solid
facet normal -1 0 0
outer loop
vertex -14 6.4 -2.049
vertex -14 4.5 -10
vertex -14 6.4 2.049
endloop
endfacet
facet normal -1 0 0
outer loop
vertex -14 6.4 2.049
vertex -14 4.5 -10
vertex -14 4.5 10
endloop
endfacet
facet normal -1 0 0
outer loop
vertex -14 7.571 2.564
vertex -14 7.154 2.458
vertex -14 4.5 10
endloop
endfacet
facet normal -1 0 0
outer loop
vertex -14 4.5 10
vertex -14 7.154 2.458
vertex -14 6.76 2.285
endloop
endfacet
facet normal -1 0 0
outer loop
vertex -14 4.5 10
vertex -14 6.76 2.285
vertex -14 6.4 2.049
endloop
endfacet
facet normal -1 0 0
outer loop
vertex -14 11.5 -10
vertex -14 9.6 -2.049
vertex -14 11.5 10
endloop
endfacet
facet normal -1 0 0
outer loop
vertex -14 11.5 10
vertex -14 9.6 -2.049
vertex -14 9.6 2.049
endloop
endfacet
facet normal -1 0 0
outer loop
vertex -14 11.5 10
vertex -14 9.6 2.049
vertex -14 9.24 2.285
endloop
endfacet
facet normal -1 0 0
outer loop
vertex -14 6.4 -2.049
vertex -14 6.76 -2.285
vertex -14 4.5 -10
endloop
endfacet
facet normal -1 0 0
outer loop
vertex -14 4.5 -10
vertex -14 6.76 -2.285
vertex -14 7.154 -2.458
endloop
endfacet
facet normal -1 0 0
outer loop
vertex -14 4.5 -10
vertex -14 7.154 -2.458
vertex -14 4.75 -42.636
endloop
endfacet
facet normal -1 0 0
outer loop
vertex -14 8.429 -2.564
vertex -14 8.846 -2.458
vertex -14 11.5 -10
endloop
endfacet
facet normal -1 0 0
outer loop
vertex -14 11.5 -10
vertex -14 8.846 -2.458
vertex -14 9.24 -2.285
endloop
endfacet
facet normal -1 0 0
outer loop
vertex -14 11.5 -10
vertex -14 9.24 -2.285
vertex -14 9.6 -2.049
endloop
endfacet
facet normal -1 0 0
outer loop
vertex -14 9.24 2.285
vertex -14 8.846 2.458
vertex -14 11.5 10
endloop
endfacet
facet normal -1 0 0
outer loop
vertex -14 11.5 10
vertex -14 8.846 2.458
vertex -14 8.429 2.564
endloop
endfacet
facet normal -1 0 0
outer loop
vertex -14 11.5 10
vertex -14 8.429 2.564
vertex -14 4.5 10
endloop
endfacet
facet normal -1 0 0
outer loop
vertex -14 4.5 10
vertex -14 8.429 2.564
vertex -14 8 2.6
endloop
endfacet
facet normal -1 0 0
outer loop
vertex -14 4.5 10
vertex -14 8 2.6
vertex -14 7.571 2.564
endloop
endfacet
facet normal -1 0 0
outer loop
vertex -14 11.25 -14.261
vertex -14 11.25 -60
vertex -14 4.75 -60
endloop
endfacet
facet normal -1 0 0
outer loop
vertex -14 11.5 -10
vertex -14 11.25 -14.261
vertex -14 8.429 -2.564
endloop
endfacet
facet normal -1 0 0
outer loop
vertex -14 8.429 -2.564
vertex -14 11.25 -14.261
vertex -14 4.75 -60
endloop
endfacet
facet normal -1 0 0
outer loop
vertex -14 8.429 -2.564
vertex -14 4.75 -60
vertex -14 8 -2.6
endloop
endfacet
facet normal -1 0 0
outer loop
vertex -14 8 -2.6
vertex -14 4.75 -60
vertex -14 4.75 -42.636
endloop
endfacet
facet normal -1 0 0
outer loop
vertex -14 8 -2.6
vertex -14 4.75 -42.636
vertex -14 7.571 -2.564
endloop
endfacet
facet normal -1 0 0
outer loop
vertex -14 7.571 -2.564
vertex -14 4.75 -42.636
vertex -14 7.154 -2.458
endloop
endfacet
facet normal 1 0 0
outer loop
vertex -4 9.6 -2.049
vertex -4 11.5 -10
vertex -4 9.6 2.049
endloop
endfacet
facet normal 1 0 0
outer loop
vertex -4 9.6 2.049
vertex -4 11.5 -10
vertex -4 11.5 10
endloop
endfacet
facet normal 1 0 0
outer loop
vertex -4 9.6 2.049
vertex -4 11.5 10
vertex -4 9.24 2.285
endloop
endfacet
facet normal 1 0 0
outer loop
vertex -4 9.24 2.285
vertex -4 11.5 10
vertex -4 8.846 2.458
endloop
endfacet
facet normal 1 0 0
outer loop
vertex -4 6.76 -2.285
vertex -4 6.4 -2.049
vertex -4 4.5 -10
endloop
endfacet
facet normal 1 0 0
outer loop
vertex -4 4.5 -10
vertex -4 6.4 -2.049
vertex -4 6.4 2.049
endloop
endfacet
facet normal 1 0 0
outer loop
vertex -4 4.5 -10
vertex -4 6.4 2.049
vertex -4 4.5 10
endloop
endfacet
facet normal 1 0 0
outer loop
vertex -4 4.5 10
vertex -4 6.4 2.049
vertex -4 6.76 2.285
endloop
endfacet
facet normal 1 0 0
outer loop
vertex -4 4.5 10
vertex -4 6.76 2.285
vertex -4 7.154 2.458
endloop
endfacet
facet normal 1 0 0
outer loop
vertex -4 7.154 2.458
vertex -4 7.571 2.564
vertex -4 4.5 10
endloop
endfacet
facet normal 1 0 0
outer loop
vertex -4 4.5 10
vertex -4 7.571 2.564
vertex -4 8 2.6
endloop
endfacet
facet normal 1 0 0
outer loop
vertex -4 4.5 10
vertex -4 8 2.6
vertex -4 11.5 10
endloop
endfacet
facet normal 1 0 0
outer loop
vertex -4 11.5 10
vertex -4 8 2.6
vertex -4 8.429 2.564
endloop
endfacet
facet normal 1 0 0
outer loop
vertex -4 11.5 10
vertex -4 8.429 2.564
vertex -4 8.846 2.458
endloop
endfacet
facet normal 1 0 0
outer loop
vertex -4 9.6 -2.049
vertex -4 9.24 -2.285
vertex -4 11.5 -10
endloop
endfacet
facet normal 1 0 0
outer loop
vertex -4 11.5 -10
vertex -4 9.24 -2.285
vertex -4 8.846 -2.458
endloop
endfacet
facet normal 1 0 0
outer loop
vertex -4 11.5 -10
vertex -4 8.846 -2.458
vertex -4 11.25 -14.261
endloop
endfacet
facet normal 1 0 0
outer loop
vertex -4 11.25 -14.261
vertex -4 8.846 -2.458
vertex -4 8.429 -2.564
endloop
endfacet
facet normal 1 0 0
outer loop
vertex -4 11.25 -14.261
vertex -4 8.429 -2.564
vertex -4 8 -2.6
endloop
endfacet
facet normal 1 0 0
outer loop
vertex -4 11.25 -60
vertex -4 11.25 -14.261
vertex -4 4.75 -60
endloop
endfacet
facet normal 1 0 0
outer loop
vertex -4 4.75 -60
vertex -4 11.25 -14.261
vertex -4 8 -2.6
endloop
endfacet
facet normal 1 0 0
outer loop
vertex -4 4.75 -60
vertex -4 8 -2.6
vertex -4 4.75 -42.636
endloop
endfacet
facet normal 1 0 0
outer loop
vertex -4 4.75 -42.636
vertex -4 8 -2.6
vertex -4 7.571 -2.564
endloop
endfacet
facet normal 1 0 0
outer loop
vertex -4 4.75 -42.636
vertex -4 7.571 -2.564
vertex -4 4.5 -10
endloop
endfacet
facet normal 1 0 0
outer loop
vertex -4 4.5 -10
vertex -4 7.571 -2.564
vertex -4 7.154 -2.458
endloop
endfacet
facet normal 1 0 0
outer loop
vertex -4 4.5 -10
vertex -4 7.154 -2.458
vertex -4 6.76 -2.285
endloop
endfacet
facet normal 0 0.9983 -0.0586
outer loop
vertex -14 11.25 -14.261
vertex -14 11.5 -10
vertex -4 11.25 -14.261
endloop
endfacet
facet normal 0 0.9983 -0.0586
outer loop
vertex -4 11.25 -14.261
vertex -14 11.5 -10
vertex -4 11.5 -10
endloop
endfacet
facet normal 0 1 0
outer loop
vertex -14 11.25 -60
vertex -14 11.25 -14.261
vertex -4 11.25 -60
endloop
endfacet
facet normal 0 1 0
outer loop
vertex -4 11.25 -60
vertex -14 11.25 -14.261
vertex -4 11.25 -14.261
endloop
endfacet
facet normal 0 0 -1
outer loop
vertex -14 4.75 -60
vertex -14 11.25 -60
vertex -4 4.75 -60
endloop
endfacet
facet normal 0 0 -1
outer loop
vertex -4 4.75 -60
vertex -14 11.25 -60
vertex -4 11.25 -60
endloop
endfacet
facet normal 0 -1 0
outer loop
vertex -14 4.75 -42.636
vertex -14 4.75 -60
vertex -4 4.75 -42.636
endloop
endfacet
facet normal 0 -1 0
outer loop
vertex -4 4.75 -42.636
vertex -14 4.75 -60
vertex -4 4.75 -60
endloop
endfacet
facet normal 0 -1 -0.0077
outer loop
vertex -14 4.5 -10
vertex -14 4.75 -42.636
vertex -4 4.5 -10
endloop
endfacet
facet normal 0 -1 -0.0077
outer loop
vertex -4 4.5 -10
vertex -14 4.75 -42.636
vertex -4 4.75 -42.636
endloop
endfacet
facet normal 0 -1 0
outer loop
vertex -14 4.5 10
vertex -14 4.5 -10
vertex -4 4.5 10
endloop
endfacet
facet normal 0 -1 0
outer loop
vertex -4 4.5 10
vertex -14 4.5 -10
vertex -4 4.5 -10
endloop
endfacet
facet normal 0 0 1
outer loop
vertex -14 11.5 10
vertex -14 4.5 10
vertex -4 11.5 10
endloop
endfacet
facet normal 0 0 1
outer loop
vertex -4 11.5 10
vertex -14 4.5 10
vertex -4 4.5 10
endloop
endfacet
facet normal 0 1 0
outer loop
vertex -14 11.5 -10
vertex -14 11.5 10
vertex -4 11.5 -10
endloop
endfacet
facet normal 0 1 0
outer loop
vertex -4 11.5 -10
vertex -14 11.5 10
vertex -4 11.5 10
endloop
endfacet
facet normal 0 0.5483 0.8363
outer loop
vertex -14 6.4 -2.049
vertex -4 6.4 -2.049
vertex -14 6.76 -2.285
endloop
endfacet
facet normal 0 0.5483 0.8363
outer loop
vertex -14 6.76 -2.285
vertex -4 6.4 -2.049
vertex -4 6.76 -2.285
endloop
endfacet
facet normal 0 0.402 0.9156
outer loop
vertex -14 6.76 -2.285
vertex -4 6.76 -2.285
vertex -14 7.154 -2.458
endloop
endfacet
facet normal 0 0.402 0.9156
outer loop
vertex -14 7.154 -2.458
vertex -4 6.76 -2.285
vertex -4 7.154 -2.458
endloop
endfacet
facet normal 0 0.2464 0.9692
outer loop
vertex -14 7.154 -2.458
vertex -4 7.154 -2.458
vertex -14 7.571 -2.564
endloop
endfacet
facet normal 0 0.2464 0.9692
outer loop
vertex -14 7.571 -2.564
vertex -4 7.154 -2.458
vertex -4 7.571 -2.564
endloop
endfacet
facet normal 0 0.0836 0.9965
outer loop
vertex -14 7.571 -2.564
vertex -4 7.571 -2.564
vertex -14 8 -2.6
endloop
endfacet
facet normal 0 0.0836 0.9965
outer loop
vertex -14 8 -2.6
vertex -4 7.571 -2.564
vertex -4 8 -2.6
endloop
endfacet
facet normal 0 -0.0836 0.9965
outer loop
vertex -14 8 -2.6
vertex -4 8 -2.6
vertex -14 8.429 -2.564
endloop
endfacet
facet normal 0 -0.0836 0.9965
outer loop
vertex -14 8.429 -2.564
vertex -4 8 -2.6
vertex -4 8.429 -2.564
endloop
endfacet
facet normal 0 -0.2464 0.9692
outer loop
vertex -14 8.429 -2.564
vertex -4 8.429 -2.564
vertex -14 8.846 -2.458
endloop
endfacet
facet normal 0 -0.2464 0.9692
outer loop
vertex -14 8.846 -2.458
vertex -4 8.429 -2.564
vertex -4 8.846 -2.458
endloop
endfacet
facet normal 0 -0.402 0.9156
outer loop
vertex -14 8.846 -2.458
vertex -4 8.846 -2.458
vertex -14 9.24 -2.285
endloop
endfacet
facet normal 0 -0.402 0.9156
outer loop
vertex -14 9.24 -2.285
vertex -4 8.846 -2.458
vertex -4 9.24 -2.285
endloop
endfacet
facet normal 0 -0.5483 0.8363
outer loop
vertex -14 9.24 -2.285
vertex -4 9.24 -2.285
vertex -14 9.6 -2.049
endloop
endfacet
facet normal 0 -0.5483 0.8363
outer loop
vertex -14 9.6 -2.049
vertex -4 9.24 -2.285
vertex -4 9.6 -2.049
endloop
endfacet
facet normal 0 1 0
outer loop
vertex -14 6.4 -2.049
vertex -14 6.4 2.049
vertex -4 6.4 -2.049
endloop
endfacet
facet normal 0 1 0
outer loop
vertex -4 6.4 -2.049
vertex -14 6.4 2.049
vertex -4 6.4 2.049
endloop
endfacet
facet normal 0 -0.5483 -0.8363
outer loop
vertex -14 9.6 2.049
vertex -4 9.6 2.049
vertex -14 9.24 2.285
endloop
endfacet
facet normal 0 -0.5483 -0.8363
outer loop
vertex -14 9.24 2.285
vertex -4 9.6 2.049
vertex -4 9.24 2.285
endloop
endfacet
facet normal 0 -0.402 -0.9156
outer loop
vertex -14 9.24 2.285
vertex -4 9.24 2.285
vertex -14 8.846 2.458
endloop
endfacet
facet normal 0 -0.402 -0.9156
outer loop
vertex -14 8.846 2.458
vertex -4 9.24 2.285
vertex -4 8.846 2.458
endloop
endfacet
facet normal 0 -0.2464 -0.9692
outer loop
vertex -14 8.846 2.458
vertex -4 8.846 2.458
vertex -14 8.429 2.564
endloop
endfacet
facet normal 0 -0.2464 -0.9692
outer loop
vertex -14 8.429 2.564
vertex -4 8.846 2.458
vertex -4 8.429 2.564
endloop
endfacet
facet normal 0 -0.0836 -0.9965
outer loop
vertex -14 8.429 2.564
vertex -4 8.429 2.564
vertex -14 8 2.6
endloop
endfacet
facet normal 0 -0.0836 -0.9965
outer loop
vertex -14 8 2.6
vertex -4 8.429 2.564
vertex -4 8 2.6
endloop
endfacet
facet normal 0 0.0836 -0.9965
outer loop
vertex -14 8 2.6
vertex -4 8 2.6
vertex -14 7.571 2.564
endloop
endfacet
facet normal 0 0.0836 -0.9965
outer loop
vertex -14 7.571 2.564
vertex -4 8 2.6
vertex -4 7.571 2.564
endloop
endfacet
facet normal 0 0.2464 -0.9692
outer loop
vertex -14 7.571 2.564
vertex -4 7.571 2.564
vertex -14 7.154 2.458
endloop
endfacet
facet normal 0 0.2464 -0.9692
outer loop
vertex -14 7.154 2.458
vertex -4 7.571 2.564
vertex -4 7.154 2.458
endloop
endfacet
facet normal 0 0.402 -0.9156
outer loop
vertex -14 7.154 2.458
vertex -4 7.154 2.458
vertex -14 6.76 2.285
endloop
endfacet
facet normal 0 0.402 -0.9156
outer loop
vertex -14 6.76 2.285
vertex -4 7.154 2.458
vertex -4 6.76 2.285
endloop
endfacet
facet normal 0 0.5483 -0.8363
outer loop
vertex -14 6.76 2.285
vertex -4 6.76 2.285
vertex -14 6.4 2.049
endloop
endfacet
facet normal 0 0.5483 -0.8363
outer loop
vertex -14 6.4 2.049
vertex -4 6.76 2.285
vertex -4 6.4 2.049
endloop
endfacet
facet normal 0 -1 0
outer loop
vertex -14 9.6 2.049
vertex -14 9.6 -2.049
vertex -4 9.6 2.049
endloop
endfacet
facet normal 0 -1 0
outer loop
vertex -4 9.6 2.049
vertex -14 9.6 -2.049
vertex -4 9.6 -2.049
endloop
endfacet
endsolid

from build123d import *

# Parameters (mm, degrees)
BOSS_EXTRUDE1_DEPTH = 10


with BuildPart() as part:
    # Sketch1 → Boss-Extrude1 (new body)
    with BuildSketch(Plane.ZY.offset(4)):
        Polygon((-10, 11.5), (10, 11.5), (10, 4.5), (-10, 4.5), (-42.635866967, 4.75), (-60, 4.75), (-60, 11.25), (-14.260924963, 11.25), align=None)
        with BuildLine():
            Line((-2.049390153, 9.6), (2.049390153, 9.6))
            ThreePointArc((2.049390153, 9.6), (2.6, 8), (2.049390153, 6.4))
            Line((2.049390153, 6.4), (-2.049390153, 6.4))
            ThreePointArc((-2.049390153, 6.4), (-2.6, 8), (-2.049390153, 9.6))
        make_face(mode=Mode.SUBTRACT)
    extrude(amount=BOSS_EXTRUDE1_DEPTH)


solid = part.part
